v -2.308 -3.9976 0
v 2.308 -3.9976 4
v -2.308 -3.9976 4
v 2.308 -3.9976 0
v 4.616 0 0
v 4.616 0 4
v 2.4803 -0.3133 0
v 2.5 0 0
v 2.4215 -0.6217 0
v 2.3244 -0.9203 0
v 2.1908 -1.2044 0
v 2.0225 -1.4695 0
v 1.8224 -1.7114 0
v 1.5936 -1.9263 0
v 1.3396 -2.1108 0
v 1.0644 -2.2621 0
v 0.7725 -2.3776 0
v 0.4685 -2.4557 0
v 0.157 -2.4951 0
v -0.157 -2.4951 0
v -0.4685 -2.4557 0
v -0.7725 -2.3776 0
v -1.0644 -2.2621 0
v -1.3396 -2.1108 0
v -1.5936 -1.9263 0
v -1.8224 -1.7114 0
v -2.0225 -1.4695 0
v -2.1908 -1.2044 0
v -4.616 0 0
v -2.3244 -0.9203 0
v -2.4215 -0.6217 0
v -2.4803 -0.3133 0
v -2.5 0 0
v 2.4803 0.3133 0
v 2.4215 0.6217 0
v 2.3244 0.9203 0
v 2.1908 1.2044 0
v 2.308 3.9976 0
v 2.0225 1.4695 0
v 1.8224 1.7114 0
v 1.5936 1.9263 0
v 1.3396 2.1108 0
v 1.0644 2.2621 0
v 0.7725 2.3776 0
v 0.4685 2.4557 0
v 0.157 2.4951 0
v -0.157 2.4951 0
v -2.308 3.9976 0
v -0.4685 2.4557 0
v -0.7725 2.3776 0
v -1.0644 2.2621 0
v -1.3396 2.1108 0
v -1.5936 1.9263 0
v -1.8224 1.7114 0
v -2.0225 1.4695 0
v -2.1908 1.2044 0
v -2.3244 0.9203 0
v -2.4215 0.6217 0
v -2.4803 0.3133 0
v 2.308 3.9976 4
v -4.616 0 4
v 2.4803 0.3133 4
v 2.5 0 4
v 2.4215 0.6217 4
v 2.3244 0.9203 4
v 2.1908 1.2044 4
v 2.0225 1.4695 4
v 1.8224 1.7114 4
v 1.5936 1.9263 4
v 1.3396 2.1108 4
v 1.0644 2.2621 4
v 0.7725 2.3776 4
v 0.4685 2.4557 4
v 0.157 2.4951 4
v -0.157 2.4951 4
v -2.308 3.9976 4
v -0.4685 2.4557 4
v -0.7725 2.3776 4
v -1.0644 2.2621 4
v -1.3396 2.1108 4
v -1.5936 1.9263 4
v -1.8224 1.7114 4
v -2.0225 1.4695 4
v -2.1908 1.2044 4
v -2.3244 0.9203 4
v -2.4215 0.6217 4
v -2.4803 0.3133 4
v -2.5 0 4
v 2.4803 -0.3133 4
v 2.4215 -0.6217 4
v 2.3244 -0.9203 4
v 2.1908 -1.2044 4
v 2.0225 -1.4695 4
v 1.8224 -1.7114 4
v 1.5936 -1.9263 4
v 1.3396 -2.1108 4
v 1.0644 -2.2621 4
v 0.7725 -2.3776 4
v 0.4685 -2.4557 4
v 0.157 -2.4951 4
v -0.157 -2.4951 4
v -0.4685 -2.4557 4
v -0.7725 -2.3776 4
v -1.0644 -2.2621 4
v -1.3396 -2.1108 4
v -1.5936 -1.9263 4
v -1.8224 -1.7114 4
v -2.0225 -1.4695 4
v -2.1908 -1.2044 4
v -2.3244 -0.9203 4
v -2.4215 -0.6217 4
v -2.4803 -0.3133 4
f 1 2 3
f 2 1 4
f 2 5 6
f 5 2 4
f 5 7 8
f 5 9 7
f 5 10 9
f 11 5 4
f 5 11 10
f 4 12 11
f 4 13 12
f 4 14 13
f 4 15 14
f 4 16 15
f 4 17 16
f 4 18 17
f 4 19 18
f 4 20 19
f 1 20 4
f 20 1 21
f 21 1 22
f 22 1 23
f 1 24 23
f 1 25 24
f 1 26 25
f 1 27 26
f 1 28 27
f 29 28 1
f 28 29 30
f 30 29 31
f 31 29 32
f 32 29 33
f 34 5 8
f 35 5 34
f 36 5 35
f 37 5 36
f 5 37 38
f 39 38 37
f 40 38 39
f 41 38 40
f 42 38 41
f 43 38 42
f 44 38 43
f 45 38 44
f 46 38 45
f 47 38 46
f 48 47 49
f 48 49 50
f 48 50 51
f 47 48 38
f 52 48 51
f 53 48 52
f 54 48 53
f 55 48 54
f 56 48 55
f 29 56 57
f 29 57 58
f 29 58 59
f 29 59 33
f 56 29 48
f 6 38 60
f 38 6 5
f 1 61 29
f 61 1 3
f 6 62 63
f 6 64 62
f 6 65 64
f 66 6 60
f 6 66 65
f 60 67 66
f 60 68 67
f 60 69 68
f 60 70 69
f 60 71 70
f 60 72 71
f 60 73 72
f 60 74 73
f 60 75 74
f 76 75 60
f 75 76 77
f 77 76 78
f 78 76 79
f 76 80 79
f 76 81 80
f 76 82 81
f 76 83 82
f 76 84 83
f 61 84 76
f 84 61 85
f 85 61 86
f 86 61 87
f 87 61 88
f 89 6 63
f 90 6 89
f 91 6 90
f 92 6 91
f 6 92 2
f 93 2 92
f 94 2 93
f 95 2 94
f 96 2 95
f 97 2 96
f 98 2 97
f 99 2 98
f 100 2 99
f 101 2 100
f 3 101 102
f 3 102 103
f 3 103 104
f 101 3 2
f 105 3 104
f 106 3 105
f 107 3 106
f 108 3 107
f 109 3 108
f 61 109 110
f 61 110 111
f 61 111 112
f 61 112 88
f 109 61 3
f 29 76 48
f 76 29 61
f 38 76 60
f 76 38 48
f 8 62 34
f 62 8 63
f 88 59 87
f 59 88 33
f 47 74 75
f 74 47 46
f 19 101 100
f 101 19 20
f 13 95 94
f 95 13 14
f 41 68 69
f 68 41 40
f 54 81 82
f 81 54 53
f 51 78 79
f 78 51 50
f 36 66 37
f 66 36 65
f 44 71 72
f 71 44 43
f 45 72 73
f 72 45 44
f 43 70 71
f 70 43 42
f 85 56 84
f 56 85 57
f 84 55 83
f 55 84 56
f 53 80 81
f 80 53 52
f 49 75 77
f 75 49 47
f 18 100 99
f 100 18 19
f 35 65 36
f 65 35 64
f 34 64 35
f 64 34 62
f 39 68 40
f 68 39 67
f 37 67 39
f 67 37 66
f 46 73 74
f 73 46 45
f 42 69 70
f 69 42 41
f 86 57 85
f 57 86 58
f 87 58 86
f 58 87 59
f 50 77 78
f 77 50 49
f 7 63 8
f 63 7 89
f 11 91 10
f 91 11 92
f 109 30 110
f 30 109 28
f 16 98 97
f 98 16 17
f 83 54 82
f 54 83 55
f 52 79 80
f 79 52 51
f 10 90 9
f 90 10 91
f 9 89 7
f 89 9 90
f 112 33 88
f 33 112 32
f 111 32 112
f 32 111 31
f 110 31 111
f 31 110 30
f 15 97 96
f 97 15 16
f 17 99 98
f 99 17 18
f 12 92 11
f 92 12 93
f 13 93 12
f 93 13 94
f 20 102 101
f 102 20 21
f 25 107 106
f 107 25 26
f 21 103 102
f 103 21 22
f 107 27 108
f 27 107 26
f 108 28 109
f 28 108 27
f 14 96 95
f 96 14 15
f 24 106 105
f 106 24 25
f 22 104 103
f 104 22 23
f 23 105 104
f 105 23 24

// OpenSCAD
$fn = 50;


difference() {
	union() {
		translate(v = [0, 0, 0]) {
			rotate(a = [0, 0, 0]) {
				translate(v = [0, 0, 0]) {
					rotate(a = [0, 0, 0]) {
						linear_extrude(height = 4) {
							polygon(points = [[4.6160000000, 0.0000000000], [2.3080000000, 3.9975732639], [-2.3080000000, 3.9975732639], [-4.6160000000, 0.0000000000], [-2.3080000000, -3.9975732639], [2.3080000000, -3.9975732639]]);
						}
					}
				}
			}
		}
	}
	union() {
		translate(v = [0, 0, -10]) {
			rotate(a = [0, 0, 0]) {
				cylinder(h = 100, r = 2.5000000000);
			}
		}
	}
}
